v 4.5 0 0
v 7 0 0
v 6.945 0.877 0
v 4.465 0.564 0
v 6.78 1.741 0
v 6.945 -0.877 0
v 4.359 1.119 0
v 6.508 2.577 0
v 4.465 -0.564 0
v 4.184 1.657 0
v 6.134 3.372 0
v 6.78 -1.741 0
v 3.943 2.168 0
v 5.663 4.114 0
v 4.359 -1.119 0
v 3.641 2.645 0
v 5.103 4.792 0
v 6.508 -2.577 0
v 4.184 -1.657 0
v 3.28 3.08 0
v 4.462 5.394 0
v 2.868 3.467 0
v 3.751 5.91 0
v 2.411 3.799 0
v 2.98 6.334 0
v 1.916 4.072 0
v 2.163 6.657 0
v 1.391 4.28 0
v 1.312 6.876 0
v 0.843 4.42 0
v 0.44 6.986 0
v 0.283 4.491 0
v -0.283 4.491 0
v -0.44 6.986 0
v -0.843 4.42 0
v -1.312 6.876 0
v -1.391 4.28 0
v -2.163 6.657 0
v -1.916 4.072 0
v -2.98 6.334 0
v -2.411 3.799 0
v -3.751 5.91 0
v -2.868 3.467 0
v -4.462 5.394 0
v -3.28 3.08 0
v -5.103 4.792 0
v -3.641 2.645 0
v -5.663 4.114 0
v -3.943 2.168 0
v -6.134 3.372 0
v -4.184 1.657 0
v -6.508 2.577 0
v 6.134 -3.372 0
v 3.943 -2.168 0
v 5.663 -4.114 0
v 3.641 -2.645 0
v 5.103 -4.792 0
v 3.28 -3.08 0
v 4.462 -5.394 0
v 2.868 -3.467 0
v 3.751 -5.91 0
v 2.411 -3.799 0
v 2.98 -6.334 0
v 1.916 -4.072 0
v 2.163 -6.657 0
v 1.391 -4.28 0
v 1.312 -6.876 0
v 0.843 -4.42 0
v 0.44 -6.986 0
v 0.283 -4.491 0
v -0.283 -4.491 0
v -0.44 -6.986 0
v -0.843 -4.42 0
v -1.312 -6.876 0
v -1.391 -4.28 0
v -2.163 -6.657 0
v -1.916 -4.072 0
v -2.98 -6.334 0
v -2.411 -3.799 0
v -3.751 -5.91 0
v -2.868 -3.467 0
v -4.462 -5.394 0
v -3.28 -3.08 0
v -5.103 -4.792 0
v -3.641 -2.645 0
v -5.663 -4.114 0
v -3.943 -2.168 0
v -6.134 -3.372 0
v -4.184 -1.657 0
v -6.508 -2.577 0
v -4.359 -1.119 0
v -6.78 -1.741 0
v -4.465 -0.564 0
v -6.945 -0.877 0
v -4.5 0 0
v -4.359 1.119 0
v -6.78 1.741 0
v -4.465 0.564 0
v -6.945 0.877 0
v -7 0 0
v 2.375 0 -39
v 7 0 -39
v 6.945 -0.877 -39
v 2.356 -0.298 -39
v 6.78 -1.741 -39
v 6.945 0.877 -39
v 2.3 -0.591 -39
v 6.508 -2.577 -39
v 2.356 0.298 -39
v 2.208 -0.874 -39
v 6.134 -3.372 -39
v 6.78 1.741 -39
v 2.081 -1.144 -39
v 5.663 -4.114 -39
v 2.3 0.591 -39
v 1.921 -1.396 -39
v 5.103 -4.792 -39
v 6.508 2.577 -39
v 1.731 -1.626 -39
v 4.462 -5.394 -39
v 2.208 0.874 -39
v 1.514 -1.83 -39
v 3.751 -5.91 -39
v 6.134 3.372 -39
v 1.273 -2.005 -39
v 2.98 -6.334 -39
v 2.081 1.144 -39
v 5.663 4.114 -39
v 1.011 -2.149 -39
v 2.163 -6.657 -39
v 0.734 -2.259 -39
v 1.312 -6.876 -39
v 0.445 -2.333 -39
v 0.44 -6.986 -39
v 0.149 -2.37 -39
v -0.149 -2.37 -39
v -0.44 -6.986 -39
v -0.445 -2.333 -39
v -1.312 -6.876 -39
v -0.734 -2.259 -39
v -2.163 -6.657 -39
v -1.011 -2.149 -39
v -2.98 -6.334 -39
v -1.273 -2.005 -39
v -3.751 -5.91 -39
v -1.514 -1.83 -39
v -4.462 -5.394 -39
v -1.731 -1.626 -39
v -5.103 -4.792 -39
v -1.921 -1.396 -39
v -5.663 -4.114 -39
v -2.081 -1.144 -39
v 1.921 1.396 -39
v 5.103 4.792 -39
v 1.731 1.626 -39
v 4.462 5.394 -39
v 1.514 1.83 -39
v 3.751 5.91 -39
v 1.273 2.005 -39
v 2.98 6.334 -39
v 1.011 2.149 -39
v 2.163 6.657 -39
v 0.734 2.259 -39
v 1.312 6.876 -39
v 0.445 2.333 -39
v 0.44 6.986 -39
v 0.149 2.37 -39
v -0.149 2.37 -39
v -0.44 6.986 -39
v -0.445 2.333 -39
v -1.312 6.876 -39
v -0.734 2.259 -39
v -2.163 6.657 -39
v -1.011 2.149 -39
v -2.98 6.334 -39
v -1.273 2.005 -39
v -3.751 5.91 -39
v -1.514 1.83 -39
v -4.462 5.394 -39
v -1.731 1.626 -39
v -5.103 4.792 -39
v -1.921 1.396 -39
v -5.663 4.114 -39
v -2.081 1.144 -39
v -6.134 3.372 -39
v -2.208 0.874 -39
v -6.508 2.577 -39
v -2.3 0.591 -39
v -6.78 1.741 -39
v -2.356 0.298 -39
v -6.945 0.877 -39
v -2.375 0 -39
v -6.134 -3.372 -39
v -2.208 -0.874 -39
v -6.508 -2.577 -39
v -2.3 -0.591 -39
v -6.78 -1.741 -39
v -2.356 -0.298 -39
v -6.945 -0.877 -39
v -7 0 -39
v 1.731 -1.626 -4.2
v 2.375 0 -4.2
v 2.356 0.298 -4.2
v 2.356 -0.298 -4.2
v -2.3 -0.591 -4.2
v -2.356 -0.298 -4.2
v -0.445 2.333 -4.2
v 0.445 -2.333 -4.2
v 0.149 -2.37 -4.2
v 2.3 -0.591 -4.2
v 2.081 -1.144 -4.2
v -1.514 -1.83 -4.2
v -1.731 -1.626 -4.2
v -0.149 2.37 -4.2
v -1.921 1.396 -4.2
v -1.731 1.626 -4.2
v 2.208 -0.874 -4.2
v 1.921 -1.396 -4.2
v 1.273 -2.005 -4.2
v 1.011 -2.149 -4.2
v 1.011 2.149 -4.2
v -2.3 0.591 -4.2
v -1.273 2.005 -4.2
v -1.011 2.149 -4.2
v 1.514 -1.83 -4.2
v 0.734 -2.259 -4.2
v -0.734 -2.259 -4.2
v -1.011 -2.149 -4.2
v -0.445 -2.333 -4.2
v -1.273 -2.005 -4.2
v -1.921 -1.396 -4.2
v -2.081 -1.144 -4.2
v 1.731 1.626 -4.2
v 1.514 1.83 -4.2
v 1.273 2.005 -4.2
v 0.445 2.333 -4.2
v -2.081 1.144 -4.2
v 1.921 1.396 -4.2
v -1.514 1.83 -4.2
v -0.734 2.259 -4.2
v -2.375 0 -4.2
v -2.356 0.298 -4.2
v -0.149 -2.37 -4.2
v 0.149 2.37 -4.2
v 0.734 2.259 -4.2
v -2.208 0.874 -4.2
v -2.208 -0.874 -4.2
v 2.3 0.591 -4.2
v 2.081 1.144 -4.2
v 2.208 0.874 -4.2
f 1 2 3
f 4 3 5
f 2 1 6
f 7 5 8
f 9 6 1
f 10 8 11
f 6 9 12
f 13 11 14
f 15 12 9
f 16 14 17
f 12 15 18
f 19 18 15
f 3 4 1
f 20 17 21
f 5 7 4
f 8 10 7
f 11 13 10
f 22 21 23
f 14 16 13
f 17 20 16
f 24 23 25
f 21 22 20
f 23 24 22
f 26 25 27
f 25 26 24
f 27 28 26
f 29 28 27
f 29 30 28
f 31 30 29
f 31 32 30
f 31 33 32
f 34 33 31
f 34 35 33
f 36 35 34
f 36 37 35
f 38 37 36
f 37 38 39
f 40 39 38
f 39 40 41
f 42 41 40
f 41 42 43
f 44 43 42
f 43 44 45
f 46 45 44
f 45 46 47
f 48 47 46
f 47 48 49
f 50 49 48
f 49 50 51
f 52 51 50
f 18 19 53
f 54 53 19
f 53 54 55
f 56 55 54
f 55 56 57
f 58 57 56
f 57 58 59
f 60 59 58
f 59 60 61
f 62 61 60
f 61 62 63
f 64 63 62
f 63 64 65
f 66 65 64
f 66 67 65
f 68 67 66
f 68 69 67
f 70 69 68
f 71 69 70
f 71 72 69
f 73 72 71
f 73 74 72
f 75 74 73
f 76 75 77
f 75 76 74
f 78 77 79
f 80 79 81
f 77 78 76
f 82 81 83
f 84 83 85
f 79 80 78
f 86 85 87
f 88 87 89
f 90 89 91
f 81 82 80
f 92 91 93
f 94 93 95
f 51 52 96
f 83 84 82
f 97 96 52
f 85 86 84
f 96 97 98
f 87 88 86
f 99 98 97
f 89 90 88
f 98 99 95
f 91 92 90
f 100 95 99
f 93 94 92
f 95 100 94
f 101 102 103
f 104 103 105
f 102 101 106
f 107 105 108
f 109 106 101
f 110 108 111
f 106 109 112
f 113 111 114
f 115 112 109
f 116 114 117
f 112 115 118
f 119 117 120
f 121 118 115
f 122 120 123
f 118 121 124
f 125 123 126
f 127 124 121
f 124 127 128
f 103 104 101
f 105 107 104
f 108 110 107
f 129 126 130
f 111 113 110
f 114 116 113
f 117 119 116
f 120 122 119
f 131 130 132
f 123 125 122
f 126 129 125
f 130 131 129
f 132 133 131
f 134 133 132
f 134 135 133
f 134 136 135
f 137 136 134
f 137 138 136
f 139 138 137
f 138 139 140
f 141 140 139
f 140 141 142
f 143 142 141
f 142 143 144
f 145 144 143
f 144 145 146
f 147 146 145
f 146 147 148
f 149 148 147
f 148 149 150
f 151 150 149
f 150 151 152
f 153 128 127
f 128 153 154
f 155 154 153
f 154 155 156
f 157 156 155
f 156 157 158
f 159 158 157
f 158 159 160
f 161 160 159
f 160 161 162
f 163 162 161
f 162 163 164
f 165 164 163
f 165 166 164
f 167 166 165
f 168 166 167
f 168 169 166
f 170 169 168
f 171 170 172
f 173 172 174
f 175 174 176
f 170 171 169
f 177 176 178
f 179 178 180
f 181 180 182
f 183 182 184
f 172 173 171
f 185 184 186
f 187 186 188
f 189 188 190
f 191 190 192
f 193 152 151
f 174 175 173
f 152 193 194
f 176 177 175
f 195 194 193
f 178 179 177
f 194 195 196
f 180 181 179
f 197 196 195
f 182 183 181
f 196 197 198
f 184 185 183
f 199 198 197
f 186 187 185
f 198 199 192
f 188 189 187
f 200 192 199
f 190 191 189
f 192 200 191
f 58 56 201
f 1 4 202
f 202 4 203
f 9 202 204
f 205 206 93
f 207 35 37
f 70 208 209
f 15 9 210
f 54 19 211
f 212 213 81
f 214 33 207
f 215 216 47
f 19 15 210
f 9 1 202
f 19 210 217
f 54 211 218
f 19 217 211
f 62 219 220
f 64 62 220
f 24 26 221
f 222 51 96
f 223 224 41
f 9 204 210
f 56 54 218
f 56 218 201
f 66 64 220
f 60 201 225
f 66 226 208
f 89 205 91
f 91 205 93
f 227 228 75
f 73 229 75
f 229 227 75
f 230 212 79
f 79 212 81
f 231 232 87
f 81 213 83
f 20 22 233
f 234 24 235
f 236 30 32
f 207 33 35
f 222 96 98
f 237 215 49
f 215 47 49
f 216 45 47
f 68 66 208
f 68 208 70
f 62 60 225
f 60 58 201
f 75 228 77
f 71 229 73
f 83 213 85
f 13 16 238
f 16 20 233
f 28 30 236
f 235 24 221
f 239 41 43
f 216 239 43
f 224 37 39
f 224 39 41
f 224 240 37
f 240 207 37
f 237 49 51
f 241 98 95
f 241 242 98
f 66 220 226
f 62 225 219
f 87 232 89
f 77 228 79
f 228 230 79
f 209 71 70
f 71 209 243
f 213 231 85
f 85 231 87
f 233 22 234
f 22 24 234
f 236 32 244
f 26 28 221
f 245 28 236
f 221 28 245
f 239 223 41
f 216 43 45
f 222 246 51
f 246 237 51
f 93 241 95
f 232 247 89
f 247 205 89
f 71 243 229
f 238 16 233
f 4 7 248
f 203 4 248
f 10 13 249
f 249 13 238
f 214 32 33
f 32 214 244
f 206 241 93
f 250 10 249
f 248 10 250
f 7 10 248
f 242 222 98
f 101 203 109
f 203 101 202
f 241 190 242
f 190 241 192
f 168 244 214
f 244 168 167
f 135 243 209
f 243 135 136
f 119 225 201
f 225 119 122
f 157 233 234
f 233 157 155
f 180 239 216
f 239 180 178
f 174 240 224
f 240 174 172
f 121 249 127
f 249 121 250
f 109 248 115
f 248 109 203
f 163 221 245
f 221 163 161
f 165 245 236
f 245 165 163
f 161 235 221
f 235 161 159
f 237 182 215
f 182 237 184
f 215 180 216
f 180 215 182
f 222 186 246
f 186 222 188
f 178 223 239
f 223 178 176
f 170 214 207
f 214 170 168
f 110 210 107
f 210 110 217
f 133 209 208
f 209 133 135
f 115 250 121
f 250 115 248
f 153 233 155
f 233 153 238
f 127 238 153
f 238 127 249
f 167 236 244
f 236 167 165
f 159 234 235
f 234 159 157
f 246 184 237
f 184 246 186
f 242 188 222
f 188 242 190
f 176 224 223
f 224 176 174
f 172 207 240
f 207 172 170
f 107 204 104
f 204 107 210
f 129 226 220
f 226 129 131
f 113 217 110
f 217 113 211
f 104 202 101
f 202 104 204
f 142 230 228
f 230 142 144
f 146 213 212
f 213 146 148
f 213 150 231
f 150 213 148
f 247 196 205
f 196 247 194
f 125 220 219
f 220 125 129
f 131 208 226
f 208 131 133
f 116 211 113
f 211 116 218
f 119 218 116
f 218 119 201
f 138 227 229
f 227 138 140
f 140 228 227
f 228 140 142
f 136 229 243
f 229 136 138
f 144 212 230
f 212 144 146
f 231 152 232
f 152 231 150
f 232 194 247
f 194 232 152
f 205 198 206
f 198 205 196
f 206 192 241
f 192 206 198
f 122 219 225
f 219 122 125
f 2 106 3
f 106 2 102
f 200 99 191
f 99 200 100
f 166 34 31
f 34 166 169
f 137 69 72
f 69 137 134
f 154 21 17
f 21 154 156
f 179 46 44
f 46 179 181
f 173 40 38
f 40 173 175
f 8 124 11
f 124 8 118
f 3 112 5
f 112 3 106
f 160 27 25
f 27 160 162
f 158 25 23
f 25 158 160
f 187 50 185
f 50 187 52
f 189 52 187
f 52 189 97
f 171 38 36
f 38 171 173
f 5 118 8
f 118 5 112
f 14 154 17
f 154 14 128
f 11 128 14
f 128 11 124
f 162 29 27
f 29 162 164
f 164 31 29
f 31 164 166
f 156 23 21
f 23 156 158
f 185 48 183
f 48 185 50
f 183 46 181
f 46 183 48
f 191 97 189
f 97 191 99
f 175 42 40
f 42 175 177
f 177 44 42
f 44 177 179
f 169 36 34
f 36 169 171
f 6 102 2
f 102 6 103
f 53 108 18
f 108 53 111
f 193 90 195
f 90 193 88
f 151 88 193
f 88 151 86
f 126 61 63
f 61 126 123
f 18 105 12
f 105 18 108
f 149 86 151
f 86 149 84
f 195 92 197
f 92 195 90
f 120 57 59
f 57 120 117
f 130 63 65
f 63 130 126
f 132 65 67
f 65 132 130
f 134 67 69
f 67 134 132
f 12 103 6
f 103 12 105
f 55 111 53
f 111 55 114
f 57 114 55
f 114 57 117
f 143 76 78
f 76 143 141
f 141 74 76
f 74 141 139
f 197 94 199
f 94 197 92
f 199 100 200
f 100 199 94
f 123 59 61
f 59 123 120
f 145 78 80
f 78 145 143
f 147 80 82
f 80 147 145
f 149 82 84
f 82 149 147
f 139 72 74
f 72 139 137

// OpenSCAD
$fn = 50;


difference() {
	union() {
		translate(v = [0, 0, -39.0000000000]) {
			cylinder(h = 39, r = 7.0000000000);
		}
		cylinder(h = 0, r = 17.0000000000);
	}
	union() {
		translate(v = [0, 0, 0]) {
			rotate(a = [0, 0, 0]) {
				difference() {
					union() {
						#translate(v = [0, 0, -39.0000000000]) {
							cylinder(h = 39, r = 2.2500000000);
						}
						#translate(v = [0, 0, -4.2000000000]) {
							cylinder(h = 4.2000000000, r1 = 2.3750000000, r2 = 4.5000000000);
						}
						#translate(v = [0, 0, -39.0000000000]) {
							cylinder(h = 39, r = 2.3750000000);
						}
						#translate(v = [0, 0, -39.0000000000]) {
							cylinder(h = 39, r = 2.2500000000);
						}
					}
					union();
				}
			}
		}
	}
}
